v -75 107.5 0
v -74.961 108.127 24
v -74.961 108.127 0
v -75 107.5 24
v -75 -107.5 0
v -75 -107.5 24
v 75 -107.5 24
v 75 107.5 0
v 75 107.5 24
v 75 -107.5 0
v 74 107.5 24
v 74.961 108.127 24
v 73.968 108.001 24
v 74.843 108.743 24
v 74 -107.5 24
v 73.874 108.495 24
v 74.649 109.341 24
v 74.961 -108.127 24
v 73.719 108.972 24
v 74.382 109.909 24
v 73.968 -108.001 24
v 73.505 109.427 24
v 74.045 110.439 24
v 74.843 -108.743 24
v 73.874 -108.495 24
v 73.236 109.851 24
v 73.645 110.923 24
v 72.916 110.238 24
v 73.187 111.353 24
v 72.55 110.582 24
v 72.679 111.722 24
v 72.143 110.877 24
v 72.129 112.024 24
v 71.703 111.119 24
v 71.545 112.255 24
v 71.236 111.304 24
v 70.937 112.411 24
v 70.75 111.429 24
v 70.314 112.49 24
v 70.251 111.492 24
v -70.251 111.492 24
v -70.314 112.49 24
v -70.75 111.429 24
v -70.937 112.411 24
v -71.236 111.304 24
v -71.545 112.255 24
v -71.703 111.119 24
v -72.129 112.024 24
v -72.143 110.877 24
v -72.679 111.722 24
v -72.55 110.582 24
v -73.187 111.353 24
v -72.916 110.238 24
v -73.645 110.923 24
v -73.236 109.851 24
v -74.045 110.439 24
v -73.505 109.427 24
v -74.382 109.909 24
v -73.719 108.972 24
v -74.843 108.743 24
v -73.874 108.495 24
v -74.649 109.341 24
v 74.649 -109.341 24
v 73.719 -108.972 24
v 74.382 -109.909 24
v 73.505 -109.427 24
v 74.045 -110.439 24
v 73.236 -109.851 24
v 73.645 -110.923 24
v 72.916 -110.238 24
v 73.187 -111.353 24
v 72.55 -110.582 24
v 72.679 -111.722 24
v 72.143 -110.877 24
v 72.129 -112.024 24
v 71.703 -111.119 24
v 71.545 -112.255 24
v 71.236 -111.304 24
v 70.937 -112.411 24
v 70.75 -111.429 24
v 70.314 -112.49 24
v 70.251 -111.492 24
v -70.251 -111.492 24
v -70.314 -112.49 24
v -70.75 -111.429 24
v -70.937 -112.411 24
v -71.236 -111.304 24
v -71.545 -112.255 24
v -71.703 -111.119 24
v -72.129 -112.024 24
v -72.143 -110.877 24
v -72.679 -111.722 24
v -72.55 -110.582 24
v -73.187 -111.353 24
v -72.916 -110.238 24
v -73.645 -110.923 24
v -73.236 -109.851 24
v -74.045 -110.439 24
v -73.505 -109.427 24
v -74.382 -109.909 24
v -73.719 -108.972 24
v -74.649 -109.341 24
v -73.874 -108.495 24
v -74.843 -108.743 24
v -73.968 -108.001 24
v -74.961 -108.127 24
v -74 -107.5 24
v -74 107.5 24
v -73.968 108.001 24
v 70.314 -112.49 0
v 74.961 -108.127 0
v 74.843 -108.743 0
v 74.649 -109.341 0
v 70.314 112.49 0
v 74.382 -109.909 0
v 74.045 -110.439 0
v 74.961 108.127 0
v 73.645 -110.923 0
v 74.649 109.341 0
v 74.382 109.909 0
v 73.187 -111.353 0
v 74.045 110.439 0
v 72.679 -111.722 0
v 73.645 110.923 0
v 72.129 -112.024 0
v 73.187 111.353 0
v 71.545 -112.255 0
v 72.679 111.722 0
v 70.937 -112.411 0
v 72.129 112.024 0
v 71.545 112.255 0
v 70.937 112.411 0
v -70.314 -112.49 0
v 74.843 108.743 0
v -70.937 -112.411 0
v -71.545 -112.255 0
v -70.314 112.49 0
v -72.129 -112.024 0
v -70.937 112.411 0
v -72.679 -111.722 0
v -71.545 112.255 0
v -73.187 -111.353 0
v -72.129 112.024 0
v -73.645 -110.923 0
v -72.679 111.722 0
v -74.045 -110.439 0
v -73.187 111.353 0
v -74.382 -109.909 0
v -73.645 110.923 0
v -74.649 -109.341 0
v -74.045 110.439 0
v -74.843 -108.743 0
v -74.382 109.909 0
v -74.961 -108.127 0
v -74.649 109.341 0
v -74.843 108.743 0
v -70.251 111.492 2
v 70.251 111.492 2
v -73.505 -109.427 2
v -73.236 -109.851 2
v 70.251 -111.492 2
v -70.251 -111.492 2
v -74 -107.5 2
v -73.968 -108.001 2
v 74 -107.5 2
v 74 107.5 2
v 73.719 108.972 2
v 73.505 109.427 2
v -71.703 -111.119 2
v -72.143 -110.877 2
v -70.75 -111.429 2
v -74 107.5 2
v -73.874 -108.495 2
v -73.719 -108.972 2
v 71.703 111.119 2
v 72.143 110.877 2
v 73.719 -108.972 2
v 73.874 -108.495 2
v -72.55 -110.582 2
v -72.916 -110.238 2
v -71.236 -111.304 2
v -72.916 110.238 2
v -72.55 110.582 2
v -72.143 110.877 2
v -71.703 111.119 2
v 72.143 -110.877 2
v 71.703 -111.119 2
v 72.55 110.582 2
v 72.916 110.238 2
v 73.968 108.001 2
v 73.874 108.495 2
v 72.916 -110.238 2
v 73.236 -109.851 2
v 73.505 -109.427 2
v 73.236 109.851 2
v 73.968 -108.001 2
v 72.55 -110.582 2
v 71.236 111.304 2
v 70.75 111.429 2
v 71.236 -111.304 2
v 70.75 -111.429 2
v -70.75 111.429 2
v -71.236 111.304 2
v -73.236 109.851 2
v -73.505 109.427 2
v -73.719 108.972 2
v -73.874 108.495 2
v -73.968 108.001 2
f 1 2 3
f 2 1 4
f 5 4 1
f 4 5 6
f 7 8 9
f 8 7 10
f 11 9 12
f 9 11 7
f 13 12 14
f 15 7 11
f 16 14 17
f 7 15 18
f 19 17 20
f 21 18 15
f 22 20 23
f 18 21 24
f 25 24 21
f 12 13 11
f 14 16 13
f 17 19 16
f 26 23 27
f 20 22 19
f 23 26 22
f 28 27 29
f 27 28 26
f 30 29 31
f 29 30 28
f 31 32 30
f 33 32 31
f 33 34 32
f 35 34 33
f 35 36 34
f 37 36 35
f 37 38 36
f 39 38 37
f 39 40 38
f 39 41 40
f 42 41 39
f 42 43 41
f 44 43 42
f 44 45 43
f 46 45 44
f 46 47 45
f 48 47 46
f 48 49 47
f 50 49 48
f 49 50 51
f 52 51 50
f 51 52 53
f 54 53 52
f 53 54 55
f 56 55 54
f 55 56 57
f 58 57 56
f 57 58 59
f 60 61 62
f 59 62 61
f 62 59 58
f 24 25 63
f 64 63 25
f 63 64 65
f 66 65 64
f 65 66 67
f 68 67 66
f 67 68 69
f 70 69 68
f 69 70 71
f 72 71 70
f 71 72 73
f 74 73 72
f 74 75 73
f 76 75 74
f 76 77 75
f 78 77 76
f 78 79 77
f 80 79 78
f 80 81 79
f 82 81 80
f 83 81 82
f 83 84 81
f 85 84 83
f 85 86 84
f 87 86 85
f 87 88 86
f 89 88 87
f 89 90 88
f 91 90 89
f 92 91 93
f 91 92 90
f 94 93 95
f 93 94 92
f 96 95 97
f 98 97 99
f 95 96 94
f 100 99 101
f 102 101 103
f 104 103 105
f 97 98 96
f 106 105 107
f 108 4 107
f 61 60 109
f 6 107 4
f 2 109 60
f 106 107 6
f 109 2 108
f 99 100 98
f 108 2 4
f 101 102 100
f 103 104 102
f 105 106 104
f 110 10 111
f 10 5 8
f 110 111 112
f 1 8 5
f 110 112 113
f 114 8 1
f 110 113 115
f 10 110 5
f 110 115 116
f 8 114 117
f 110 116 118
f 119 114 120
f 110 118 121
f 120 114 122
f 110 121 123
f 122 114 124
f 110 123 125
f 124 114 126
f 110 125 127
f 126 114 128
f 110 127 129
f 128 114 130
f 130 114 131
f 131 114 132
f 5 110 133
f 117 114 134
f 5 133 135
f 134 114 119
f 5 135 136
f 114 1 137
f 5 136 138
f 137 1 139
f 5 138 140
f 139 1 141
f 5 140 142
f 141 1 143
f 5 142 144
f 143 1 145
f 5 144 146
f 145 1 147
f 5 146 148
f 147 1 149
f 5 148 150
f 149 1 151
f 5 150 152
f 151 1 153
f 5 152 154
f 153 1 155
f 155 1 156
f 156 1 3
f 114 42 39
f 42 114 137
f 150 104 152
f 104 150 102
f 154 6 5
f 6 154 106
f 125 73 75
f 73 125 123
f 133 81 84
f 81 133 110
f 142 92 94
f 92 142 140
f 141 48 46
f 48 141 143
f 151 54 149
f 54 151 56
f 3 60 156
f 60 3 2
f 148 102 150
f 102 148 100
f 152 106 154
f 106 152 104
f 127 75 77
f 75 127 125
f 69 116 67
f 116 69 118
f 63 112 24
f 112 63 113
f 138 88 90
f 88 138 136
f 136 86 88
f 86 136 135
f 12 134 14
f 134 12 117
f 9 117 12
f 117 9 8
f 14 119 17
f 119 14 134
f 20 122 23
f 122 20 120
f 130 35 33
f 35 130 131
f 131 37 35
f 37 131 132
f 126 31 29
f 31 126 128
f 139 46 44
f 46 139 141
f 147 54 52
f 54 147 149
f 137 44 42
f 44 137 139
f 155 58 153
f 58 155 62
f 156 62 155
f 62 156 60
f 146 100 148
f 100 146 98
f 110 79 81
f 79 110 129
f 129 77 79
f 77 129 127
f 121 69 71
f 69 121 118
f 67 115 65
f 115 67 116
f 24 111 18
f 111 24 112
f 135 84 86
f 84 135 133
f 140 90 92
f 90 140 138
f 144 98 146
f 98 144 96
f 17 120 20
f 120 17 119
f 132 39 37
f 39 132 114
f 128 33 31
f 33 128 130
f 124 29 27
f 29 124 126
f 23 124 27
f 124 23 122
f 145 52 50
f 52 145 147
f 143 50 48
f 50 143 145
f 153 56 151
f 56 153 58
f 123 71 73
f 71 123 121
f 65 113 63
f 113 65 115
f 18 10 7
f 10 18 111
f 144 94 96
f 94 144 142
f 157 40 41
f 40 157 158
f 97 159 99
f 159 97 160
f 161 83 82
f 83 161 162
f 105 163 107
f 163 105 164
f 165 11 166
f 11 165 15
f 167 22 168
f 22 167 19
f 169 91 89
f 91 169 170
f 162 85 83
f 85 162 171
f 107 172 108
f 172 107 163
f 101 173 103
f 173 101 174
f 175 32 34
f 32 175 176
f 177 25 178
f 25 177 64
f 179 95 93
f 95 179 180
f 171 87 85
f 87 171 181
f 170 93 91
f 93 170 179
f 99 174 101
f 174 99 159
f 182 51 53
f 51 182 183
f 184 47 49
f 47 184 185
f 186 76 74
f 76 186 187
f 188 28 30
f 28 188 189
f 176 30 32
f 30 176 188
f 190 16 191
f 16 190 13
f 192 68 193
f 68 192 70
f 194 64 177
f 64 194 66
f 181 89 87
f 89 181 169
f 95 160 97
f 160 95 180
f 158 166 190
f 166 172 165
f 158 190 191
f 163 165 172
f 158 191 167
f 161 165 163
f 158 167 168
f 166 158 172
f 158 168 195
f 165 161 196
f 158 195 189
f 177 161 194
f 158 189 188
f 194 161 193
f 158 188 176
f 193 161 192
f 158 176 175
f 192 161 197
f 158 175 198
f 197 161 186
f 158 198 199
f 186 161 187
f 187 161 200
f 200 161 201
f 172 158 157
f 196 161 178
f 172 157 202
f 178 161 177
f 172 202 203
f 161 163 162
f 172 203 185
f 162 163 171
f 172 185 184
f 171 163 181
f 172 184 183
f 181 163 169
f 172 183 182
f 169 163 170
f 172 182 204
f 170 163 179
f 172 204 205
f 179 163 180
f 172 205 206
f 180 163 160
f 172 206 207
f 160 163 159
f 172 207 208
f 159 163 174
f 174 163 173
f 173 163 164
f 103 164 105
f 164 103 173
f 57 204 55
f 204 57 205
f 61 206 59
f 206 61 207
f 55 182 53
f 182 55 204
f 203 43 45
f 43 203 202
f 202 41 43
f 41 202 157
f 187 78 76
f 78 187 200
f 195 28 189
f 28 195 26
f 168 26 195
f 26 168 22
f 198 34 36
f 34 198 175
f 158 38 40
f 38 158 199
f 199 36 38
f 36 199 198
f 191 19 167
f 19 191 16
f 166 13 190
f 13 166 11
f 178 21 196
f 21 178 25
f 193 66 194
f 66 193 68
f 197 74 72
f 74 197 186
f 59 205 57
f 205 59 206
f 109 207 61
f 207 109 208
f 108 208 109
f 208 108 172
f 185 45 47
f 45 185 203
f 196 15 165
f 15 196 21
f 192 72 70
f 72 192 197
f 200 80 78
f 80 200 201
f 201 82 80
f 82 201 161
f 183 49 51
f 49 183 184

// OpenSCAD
$fn = 50;


difference() {
	union() {
		hull() {
			translate(v = [-70.0000000000, 107.5000000000, 0]) {
				cylinder(h = 24, r = 5);
			}
			translate(v = [70.0000000000, 107.5000000000, 0]) {
				cylinder(h = 24, r = 5);
			}
			translate(v = [-70.0000000000, -107.5000000000, 0]) {
				cylinder(h = 24, r = 5);
			}
			translate(v = [70.0000000000, -107.5000000000, 0]) {
				cylinder(h = 24, r = 5);
			}
		}
	}
	union() {
		translate(v = [0, 0, 2]) {
			hull() {
				translate(v = [-70.0000000000, 107.5000000000, 0]) {
					cylinder(h = 22, r = 4);
				}
				translate(v = [70.0000000000, 107.5000000000, 0]) {
					cylinder(h = 22, r = 4);
				}
				translate(v = [-70.0000000000, -107.5000000000, 0]) {
					cylinder(h = 22, r = 4);
				}
				translate(v = [70.0000000000, -107.5000000000, 0]) {
					cylinder(h = 22, r = 4);
				}
			}
		}
	}
}
